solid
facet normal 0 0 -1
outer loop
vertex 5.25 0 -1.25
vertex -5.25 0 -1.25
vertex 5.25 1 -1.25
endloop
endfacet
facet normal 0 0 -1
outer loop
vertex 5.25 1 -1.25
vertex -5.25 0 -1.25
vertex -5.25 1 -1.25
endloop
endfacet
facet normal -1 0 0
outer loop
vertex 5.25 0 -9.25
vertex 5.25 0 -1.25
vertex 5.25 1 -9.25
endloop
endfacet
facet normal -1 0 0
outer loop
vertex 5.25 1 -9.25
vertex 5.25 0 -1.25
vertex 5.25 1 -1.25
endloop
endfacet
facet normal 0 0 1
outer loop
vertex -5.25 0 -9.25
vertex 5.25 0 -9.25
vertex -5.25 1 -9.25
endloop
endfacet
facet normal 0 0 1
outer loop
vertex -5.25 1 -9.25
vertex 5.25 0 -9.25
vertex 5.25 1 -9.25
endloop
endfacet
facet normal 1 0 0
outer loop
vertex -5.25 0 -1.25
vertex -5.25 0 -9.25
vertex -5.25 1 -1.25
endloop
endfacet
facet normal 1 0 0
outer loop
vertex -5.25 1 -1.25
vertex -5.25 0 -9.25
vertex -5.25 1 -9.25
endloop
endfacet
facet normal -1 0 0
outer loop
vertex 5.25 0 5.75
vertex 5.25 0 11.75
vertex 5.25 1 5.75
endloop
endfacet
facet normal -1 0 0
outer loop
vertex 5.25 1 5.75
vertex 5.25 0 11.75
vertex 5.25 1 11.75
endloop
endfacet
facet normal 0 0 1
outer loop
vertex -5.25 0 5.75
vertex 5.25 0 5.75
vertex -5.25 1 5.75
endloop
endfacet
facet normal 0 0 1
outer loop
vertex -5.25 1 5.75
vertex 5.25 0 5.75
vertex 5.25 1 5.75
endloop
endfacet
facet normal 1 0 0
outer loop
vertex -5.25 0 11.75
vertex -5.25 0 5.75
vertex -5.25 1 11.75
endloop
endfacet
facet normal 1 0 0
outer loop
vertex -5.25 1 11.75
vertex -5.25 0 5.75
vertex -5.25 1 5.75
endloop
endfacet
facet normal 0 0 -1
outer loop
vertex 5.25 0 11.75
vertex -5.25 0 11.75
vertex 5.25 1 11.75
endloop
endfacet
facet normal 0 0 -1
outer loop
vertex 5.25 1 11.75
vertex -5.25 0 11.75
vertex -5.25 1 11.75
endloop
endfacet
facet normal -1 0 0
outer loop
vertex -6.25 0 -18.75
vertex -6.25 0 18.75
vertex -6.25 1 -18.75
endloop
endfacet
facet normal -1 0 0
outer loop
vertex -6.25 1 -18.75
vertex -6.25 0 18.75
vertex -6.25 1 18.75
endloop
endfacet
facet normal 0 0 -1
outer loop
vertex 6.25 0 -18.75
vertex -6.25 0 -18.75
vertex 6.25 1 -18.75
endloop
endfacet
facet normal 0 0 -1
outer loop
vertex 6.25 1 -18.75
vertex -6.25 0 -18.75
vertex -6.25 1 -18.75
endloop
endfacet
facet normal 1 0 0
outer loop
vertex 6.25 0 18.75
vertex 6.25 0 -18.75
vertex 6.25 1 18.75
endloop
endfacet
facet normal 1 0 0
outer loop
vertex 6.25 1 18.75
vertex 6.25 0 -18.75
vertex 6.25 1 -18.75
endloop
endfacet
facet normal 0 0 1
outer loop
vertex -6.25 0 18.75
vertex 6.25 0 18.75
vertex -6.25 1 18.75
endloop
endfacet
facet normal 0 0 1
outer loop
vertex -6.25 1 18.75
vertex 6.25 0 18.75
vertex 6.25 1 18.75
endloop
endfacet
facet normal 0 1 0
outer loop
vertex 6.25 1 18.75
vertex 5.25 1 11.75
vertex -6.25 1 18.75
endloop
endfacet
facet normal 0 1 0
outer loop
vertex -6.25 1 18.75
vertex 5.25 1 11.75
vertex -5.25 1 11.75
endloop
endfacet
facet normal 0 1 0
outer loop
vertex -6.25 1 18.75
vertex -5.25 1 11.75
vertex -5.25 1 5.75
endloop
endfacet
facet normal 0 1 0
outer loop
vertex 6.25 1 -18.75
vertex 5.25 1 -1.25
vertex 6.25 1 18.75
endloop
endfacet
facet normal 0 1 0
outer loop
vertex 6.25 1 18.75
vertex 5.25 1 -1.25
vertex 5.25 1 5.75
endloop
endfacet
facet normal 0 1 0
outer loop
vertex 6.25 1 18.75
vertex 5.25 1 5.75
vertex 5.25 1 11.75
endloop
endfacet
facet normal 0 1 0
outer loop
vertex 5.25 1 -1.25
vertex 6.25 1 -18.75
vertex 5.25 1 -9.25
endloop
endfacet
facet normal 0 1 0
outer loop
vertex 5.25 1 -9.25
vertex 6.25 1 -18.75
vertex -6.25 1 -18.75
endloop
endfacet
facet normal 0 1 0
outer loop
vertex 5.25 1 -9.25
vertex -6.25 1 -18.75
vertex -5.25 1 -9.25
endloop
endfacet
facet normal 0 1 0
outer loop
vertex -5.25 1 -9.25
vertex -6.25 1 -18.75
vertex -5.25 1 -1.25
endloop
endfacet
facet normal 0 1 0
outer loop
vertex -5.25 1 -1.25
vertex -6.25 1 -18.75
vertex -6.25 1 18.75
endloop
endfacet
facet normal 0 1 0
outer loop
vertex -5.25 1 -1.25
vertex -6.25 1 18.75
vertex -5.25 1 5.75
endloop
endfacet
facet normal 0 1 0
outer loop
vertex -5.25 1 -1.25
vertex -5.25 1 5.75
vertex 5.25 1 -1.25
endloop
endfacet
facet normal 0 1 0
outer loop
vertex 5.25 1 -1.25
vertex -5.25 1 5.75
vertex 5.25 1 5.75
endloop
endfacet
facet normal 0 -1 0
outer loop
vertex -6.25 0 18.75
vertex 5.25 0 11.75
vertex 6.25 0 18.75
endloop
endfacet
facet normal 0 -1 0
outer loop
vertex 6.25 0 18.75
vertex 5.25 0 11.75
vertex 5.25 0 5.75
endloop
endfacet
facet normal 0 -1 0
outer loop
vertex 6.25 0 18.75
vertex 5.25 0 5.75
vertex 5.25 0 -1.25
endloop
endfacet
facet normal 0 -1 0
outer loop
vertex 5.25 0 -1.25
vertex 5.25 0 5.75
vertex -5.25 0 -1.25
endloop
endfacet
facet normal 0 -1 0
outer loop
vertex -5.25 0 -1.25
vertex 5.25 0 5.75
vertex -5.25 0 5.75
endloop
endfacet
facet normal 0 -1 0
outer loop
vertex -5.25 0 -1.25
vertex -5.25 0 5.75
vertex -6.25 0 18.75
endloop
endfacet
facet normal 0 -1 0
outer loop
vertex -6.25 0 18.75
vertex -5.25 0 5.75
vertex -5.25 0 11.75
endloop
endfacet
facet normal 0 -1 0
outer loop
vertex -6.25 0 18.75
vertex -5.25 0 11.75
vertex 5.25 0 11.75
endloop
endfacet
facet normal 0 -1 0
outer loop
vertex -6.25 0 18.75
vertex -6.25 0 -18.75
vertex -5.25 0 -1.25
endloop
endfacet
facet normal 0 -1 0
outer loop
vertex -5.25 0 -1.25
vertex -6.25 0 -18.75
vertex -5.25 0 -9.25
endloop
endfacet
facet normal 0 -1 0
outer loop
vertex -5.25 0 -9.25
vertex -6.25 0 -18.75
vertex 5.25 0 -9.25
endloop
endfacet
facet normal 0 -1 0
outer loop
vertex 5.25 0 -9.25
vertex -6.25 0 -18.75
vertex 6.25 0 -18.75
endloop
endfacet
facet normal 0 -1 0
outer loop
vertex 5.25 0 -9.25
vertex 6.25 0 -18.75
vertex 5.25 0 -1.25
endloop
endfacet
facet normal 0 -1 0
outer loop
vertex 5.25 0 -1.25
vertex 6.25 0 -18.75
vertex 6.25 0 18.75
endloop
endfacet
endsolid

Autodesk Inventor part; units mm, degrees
ref_plane "YZ Plane" through (0, 0, 0) normal (1, 0, 0) x (0, 1, 0)
ref_plane "XZ Plane" through (0, 0, 0) normal (0, 1, 0) x (-1, 0, 0)
ref_plane "XY Plane" through (0, 0, 0) normal (0, 0, 1) x (1, 0, 0)
sketch "Sketch1" plane through (0, 0, 0) normal (0, 1, 0) x (-1, 0, 0)
  line L0 (-6.25, 18.75) -> (6.25, 18.75)
  line L1 (6.25, 18.75) -> (6.25, -18.75)
  line L2 (6.25, -18.75) -> (-6.25, -18.75)
  line L3 (-6.25, -18.75) -> (-6.25, 18.75)
  line L4 (5.25, 18.75) -> (5.25, -18.75)
  line L5 (-5.25, 18.75) -> (-5.25, -18.75)
  line L6 (5.25, 11.75) -> (-5.25, 11.75)
  line L7 (5.25, 5.75) -> (-5.25, 5.75)
  line L8 (5.25, -1.25) -> (-5.25, -1.25)
  line L9 (5.25, -9.25) -> (-5.25, -9.25)
  point P0 (0, 0)
  dimension "d0" = 12.5
  dimension "d1" = 37.5
extrude "Extrusion1" add sketch "Sketch1" along normal blind 1 contours L0 L5 L2 L3 | L0 L4 L6 L5 | L0 L1 L2 L4 | L5 L9 L4 L2 | L7 L4 L8 L5
properties part number "if_case_top"
